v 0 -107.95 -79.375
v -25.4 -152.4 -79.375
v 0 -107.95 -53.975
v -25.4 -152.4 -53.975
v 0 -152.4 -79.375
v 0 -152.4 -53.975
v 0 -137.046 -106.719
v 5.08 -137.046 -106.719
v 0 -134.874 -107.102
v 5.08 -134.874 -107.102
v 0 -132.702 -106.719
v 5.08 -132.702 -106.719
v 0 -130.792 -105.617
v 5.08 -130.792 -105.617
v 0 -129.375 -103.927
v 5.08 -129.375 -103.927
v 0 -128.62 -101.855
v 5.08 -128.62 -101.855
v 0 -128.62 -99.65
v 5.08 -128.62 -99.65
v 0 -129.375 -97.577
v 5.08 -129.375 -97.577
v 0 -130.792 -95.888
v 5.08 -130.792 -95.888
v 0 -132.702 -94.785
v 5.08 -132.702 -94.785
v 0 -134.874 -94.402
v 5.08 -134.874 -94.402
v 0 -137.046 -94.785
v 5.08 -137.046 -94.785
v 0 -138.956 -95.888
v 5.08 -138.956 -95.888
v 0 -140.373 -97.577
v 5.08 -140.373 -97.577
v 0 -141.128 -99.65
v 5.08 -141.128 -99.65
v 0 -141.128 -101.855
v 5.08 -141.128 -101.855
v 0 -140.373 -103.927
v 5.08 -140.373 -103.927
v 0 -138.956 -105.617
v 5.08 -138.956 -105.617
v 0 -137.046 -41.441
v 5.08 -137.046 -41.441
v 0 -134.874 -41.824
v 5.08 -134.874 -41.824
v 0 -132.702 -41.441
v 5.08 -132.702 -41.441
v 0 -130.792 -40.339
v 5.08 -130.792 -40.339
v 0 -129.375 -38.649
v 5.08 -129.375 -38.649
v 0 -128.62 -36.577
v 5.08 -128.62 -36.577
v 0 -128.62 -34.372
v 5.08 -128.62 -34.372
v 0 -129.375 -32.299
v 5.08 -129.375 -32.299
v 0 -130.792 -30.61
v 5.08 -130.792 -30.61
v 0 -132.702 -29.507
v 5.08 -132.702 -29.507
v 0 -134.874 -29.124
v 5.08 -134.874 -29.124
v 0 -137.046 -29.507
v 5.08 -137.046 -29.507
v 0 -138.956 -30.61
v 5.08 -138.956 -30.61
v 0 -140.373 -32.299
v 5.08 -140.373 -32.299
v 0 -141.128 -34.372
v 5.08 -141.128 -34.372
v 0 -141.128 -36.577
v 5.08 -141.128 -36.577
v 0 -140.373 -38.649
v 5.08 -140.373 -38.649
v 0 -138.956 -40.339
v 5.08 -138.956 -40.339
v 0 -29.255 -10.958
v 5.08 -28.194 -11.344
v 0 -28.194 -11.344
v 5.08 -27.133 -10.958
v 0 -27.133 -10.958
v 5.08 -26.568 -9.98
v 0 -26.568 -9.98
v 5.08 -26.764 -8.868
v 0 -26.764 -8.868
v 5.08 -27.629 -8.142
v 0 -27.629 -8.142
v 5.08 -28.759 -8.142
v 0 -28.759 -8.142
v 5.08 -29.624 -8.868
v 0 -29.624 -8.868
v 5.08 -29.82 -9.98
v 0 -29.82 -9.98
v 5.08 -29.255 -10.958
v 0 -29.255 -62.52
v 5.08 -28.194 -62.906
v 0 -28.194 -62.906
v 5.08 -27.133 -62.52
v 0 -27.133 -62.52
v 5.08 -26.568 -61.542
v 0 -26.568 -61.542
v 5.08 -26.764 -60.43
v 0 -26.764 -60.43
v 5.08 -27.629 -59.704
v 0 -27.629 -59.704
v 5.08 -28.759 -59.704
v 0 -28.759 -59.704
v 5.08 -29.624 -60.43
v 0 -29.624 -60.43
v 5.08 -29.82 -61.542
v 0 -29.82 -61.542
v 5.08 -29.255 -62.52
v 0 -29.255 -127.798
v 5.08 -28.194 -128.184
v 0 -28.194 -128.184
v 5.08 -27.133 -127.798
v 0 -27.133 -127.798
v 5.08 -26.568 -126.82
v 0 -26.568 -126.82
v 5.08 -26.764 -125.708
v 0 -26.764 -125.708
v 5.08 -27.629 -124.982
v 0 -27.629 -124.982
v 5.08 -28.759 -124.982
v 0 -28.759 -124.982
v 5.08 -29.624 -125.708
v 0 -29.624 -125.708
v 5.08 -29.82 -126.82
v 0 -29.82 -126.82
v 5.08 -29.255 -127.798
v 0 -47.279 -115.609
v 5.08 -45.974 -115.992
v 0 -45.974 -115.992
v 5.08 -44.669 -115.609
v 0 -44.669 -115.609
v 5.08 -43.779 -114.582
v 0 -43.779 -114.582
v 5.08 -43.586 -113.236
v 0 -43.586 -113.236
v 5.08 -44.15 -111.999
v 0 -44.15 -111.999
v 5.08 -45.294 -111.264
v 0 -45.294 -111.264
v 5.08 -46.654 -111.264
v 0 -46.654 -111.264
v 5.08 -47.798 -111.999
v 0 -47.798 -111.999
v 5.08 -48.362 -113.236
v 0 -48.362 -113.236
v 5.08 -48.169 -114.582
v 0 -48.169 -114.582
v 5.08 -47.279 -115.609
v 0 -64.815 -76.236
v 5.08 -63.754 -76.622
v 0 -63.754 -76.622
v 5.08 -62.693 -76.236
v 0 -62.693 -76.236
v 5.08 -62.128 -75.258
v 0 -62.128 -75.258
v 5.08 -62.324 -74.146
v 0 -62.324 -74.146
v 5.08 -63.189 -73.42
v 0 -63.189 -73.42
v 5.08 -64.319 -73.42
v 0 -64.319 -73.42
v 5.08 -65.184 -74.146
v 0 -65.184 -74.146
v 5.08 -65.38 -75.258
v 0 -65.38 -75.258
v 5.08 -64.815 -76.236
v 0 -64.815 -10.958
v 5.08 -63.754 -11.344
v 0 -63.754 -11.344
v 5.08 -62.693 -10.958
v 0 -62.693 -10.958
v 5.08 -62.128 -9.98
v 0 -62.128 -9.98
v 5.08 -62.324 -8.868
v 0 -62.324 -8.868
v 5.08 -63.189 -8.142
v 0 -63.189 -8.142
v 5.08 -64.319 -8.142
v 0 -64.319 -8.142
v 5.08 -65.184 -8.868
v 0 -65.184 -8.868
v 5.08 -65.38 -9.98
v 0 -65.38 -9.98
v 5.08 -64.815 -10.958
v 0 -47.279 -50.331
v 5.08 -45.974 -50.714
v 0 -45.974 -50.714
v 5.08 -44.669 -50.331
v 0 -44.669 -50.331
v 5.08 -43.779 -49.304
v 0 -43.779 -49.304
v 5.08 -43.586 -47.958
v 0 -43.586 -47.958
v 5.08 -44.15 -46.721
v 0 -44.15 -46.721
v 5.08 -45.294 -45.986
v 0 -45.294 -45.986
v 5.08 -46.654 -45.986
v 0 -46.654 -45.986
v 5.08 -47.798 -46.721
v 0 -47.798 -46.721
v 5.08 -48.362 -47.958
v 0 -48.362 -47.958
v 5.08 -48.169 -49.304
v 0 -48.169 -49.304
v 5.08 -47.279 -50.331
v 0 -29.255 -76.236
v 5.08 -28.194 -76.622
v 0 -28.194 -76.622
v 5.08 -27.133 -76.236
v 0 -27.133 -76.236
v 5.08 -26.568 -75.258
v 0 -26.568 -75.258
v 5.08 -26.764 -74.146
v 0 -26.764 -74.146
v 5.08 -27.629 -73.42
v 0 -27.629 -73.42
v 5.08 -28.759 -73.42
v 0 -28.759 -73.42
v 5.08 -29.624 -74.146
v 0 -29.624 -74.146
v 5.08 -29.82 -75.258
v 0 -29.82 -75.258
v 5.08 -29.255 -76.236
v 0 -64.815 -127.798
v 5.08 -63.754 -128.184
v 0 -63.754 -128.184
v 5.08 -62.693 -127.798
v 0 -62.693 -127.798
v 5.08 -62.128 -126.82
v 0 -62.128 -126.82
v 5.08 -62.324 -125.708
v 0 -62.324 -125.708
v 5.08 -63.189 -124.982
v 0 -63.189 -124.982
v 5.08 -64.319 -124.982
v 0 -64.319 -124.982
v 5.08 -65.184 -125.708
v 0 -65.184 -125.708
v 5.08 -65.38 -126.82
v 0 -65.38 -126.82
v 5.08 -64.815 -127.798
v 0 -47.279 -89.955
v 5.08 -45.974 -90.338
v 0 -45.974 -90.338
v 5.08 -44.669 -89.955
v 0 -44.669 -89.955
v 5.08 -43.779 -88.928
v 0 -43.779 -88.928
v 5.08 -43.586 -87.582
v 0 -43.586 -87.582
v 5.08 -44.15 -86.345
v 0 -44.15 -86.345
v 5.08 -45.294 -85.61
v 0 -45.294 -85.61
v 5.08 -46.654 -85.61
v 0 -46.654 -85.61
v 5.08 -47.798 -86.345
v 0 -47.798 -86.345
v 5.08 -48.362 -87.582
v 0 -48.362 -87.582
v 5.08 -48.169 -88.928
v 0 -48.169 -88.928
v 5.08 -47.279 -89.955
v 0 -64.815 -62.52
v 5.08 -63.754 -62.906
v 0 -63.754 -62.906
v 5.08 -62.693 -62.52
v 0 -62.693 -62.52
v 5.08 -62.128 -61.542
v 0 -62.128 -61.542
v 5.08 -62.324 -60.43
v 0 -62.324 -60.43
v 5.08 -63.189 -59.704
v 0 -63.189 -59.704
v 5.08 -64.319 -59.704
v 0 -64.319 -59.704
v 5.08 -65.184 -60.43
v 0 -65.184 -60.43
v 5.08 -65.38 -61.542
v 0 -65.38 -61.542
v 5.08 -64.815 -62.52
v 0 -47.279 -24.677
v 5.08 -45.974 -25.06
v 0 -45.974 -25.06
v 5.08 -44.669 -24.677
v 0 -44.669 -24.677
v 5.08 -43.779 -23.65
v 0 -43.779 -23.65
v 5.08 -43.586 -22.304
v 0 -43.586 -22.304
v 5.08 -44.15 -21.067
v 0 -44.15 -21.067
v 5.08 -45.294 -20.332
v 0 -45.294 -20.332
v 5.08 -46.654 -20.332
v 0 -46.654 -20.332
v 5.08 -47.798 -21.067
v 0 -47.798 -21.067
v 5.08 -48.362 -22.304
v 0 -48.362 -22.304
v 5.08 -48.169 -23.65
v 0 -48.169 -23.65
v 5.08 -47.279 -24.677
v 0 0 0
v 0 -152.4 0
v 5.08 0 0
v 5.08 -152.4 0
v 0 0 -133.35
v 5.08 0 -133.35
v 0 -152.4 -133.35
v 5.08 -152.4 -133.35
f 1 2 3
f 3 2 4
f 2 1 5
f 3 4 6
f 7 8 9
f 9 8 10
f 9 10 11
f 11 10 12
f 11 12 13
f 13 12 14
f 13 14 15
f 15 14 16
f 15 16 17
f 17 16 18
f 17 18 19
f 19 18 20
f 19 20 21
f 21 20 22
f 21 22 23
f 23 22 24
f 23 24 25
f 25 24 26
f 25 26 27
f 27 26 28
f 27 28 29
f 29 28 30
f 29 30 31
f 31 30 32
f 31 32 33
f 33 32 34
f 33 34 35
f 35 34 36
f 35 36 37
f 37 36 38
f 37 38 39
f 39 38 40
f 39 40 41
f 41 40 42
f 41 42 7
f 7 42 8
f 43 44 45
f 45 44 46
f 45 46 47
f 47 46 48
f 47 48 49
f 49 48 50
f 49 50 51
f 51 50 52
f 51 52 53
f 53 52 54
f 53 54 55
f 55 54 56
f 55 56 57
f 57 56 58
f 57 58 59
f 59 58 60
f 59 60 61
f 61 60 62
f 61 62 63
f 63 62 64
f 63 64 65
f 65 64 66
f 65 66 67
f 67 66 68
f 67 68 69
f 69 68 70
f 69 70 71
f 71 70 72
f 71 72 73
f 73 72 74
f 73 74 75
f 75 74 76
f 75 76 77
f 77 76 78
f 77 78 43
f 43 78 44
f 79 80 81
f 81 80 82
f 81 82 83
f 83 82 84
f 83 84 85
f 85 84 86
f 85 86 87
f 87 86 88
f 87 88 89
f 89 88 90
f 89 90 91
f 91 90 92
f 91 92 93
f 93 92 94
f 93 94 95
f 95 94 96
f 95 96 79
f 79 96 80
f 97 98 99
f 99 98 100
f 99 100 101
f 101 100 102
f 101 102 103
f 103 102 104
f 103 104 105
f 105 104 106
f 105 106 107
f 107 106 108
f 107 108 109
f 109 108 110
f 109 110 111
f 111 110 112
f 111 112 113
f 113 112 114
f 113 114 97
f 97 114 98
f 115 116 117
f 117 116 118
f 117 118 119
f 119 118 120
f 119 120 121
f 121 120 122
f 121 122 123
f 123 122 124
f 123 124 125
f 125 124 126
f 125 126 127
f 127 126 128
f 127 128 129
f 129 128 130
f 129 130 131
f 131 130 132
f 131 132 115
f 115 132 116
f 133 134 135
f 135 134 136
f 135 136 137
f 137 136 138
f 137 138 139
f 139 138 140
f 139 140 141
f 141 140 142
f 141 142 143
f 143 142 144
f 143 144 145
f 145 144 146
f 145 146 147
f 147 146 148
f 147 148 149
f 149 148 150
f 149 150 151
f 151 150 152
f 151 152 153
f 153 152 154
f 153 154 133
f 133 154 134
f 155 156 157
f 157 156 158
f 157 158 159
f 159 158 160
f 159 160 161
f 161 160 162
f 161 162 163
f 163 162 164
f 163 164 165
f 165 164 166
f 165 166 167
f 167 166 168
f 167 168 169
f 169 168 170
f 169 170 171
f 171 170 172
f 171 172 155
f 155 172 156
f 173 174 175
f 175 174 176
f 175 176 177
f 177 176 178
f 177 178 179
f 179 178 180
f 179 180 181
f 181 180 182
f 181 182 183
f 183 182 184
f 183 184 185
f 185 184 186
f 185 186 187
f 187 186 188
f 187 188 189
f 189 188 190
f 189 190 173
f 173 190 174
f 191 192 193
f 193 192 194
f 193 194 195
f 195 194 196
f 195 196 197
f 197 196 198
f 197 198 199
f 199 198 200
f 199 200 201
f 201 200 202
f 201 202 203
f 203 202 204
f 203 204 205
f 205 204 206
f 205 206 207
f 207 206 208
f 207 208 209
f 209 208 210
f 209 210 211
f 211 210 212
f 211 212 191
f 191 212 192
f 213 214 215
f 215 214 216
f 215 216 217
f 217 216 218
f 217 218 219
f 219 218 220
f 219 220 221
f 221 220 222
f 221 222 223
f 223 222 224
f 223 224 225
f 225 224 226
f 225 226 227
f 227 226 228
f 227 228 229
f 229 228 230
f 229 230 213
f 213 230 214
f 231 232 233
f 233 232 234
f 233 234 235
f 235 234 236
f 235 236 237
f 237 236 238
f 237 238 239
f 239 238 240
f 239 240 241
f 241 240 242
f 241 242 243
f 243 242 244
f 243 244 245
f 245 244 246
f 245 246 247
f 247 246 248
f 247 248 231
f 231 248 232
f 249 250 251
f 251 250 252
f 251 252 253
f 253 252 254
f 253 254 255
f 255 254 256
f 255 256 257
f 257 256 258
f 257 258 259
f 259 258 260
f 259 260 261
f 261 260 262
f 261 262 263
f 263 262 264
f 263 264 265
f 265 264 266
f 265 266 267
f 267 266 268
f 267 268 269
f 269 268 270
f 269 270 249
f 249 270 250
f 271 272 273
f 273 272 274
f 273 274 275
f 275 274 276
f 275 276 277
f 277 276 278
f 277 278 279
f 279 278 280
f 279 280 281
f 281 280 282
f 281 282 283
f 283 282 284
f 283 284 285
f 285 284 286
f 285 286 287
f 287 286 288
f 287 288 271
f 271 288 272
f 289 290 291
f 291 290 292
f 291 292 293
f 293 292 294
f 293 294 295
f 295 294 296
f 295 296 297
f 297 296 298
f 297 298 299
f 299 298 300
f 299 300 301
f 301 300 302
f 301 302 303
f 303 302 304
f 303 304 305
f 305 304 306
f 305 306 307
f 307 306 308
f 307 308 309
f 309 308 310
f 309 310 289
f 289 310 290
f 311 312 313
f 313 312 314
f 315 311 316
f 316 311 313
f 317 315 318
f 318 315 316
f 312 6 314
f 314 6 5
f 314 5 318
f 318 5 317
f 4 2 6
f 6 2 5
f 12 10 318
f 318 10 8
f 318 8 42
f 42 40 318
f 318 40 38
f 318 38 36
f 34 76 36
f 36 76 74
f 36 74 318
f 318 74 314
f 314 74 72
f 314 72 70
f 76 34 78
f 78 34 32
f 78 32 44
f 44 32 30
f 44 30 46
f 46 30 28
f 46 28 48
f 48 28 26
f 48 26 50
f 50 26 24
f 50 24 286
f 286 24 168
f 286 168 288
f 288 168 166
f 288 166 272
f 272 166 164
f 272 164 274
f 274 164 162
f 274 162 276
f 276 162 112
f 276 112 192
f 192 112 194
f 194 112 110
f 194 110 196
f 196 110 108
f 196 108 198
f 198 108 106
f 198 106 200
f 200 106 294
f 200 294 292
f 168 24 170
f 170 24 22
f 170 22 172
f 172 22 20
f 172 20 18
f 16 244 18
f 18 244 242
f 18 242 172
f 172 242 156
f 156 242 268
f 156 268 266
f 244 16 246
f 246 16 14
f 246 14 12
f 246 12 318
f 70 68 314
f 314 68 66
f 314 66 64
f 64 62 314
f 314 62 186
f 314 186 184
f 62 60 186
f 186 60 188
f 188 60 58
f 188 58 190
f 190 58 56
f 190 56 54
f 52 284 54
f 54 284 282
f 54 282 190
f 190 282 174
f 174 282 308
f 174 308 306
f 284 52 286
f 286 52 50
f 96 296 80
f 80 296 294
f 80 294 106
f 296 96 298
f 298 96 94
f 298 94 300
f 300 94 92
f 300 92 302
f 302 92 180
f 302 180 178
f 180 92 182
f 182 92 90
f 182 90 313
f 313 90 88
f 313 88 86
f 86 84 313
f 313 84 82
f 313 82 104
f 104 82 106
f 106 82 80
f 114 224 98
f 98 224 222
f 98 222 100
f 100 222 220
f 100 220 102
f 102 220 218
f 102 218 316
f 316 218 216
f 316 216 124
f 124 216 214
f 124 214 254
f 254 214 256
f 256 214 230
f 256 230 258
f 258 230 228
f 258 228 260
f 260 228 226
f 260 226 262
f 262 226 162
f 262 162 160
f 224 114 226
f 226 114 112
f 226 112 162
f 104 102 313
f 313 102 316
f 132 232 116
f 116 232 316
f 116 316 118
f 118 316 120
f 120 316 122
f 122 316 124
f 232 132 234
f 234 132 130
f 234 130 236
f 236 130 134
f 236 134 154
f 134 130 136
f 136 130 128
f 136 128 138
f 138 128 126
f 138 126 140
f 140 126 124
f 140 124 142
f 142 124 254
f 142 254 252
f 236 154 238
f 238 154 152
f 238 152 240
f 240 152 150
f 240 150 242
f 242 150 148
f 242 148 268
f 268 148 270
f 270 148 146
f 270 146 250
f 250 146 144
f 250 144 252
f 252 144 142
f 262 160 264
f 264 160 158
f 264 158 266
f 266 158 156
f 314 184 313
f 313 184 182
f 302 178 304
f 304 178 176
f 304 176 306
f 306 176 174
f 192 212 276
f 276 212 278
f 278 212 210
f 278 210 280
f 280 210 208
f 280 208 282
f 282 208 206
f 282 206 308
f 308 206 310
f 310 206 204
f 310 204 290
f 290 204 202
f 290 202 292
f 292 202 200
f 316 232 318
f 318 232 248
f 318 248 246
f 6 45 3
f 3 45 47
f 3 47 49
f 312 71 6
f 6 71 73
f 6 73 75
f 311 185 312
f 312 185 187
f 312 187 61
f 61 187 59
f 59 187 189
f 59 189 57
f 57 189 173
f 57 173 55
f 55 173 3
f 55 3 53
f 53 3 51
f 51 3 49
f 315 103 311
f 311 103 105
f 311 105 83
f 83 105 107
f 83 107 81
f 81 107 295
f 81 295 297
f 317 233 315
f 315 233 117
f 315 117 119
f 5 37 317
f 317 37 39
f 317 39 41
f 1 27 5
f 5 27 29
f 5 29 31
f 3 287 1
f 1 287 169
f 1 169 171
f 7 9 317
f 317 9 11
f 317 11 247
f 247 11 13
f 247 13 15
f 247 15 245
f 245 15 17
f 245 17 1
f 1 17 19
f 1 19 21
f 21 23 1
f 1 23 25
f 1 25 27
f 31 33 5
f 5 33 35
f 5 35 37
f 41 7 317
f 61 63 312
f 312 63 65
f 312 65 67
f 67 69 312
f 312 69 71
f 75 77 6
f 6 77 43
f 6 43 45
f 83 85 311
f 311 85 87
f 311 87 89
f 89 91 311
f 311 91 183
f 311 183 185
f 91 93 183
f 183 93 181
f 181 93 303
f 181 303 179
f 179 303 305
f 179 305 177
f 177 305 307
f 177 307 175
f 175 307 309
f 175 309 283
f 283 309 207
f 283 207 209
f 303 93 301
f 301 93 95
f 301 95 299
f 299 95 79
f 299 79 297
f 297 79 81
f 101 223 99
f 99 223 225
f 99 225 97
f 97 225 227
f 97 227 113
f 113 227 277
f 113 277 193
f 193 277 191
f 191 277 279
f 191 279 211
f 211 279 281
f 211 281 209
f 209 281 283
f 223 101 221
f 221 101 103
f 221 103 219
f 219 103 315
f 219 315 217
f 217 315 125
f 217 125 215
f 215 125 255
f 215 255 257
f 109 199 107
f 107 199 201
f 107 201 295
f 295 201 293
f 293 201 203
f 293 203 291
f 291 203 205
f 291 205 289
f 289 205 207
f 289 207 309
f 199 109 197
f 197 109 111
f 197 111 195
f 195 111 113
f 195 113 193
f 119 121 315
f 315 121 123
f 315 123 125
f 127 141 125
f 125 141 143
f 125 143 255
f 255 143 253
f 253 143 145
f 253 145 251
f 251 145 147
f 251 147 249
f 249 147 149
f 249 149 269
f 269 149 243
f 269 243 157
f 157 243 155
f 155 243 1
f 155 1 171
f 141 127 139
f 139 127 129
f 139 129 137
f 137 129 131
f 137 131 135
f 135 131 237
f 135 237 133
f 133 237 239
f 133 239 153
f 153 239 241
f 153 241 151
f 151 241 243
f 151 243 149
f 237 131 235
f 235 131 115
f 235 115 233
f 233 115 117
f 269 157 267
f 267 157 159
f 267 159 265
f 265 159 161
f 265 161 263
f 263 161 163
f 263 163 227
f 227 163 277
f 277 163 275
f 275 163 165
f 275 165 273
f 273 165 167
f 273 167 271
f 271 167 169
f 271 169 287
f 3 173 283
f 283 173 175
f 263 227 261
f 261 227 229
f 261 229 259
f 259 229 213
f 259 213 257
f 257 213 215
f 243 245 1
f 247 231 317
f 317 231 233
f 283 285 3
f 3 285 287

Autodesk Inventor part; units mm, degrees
ref_plane "YZ Plane" through (0, 0, 0) normal (1, 0, 0) x (0, 1, 0)
ref_plane "XZ Plane" through (0, 0, 0) normal (0, 1, 0) x (-1, 0, 0)
ref_plane "XY Plane" through (0, 0, 0) normal (0, 0, 1) x (1, 0, 0)
sketch "Sketch4" plane through (0, 0, 0) normal (1, 0, 0) x (0, 1, 0)
  line L0 (0, 0) -> (-152.4, 0)
  line L1 (-152.4, 0) -> (-152.4, -133.35)
  line L2 (-152.4, -133.35) -> (0, -133.35)
  line L3 (0, -133.35) -> (0, 0)
  dimension "d10" = 152.4
  dimension "d11" = 133.35
extrude "Extrusion2" add sketch "Sketch4" along normal blind 5.08
sketch "Sketch5" plane through (5.08, 0, 0) normal (1, 0, 0) x (0, 0, -1)
  line L0 (133.35, 0) -> (0, 0) projected
  line L1 (66.675, 0) -> (66.675, -152.4)
  line L2 (0, -152.4) -> (133.35, -152.4) projected
  circle A0 centre (126.5334, -28.194) radius 1.651
  circle A1 centre (74.9714, -28.194) radius 1.651
  circle A2 centre (61.2554, -28.194) radius 1.651
  circle A3 centre (9.6934, -28.194) radius 1.651
  circle A4 centre (126.5334, -63.754) radius 1.651
  circle A5 centre (74.9714, -63.754) radius 1.651
  circle A6 centre (61.2554, -63.754) radius 1.651
  circle A7 centre (9.6934, -63.754) radius 1.651
  circle A8 centre (113.5794, -45.974) radius 2.413
  circle A9 centre (87.9254, -45.974) radius 2.413
  circle A10 centre (48.3014, -45.974) radius 2.413
  circle A11 centre (22.6474, -45.974) radius 2.413
  line L3 (66.675, 0) -> (66.675, -28.194)
  line L4 (66.675, -28.194) -> (73.533, -28.194)
  line L5 (73.533, -28.194) -> (66.675, -28.194)
  line L6 (66.675, -28.194) -> (59.817, -28.194)
  dimension "d14" = 28.194
  dimension "d15" = 6.858
  dimension "d16" = 6.858
extrude "Extrusion3" cut sketch "Sketch5" against normal blind 5.08
sketch "Sketch6" plane through (5.08, 0, 0) normal (1, 0, 0) x (0, 0, -1)
  circle A0 centre (22.6474, -45.974) radius 2.413 projected
  circle A1 centre (48.3014, -45.974) radius 2.413 projected
  line L0 (0, -152.4) -> (133.35, -152.4) projected
  circle A2 centre (35.4744, -134.874) radius 6.35
  circle A3 centre (87.9254, -45.974) radius 2.413 projected
  circle A4 centre (113.5794, -45.974) radius 2.413 projected
  circle A5 centre (100.7524, -134.874) radius 6.35
  point P0 (0, 0)
  dimension "d20" = 12.7
  dimension "d22" = 12.7
extrude "Extrusion4" cut sketch "Sketch6" against normal blind 5.08 contours A2 | A5
sketch "Sketch7" plane through (0, 0, 0) normal (-1, 0, 0) x (0, 0, 1)
  line L0 (-133.35, 0) -> (0, 0) projected
  line L1 (-66.675, 0) -> (-66.675, -152.4)
  line L2 (0, -152.4) -> (-133.35, -152.4) projected
  line L3 (-79.375, -107.9503) -> (-53.975, -107.9503)
  line L4 (-53.975, -107.9503) -> (-53.975, -152.4)
  line L5 (-53.975, -152.4) -> (-79.375, -152.4)
  line L6 (-79.375, -152.4) -> (-79.375, -107.9503)
  line L7 (-79.375, -107.9503) -> (-53.975, -152.4) construction
  line L8 (-53.975, -107.9503) -> (-79.375, -152.4) construction
  point P0 (-66.675, -130.1752)
  dimension "d29" = 25.4
extrude "Extrusion5" add sketch "Sketch7" along normal blind 25.4
sketch "Sketch8" plane through (0, -152.4, -79.375) normal (0, 0, -1) x (-1, 0, 0)
  line L0 (25.4, 0) -> (25.4, 44.4497) projected
  line L1 (0, 44.4497) -> (25.4, 44.4497) projected
  line L2 (25.4, 0) -> (0, 44.4497)
  point P0 (0, 152.4)
extrude "Extrusion6" cut sketch "Sketch8" against normal blind 25.4
sketch "Sketch9" plane through (5.08, 0, 0) normal (1, 0, 0) x (0, 0, -1)
  point P0 (0, 0)
properties part number "HalfBackWall"
